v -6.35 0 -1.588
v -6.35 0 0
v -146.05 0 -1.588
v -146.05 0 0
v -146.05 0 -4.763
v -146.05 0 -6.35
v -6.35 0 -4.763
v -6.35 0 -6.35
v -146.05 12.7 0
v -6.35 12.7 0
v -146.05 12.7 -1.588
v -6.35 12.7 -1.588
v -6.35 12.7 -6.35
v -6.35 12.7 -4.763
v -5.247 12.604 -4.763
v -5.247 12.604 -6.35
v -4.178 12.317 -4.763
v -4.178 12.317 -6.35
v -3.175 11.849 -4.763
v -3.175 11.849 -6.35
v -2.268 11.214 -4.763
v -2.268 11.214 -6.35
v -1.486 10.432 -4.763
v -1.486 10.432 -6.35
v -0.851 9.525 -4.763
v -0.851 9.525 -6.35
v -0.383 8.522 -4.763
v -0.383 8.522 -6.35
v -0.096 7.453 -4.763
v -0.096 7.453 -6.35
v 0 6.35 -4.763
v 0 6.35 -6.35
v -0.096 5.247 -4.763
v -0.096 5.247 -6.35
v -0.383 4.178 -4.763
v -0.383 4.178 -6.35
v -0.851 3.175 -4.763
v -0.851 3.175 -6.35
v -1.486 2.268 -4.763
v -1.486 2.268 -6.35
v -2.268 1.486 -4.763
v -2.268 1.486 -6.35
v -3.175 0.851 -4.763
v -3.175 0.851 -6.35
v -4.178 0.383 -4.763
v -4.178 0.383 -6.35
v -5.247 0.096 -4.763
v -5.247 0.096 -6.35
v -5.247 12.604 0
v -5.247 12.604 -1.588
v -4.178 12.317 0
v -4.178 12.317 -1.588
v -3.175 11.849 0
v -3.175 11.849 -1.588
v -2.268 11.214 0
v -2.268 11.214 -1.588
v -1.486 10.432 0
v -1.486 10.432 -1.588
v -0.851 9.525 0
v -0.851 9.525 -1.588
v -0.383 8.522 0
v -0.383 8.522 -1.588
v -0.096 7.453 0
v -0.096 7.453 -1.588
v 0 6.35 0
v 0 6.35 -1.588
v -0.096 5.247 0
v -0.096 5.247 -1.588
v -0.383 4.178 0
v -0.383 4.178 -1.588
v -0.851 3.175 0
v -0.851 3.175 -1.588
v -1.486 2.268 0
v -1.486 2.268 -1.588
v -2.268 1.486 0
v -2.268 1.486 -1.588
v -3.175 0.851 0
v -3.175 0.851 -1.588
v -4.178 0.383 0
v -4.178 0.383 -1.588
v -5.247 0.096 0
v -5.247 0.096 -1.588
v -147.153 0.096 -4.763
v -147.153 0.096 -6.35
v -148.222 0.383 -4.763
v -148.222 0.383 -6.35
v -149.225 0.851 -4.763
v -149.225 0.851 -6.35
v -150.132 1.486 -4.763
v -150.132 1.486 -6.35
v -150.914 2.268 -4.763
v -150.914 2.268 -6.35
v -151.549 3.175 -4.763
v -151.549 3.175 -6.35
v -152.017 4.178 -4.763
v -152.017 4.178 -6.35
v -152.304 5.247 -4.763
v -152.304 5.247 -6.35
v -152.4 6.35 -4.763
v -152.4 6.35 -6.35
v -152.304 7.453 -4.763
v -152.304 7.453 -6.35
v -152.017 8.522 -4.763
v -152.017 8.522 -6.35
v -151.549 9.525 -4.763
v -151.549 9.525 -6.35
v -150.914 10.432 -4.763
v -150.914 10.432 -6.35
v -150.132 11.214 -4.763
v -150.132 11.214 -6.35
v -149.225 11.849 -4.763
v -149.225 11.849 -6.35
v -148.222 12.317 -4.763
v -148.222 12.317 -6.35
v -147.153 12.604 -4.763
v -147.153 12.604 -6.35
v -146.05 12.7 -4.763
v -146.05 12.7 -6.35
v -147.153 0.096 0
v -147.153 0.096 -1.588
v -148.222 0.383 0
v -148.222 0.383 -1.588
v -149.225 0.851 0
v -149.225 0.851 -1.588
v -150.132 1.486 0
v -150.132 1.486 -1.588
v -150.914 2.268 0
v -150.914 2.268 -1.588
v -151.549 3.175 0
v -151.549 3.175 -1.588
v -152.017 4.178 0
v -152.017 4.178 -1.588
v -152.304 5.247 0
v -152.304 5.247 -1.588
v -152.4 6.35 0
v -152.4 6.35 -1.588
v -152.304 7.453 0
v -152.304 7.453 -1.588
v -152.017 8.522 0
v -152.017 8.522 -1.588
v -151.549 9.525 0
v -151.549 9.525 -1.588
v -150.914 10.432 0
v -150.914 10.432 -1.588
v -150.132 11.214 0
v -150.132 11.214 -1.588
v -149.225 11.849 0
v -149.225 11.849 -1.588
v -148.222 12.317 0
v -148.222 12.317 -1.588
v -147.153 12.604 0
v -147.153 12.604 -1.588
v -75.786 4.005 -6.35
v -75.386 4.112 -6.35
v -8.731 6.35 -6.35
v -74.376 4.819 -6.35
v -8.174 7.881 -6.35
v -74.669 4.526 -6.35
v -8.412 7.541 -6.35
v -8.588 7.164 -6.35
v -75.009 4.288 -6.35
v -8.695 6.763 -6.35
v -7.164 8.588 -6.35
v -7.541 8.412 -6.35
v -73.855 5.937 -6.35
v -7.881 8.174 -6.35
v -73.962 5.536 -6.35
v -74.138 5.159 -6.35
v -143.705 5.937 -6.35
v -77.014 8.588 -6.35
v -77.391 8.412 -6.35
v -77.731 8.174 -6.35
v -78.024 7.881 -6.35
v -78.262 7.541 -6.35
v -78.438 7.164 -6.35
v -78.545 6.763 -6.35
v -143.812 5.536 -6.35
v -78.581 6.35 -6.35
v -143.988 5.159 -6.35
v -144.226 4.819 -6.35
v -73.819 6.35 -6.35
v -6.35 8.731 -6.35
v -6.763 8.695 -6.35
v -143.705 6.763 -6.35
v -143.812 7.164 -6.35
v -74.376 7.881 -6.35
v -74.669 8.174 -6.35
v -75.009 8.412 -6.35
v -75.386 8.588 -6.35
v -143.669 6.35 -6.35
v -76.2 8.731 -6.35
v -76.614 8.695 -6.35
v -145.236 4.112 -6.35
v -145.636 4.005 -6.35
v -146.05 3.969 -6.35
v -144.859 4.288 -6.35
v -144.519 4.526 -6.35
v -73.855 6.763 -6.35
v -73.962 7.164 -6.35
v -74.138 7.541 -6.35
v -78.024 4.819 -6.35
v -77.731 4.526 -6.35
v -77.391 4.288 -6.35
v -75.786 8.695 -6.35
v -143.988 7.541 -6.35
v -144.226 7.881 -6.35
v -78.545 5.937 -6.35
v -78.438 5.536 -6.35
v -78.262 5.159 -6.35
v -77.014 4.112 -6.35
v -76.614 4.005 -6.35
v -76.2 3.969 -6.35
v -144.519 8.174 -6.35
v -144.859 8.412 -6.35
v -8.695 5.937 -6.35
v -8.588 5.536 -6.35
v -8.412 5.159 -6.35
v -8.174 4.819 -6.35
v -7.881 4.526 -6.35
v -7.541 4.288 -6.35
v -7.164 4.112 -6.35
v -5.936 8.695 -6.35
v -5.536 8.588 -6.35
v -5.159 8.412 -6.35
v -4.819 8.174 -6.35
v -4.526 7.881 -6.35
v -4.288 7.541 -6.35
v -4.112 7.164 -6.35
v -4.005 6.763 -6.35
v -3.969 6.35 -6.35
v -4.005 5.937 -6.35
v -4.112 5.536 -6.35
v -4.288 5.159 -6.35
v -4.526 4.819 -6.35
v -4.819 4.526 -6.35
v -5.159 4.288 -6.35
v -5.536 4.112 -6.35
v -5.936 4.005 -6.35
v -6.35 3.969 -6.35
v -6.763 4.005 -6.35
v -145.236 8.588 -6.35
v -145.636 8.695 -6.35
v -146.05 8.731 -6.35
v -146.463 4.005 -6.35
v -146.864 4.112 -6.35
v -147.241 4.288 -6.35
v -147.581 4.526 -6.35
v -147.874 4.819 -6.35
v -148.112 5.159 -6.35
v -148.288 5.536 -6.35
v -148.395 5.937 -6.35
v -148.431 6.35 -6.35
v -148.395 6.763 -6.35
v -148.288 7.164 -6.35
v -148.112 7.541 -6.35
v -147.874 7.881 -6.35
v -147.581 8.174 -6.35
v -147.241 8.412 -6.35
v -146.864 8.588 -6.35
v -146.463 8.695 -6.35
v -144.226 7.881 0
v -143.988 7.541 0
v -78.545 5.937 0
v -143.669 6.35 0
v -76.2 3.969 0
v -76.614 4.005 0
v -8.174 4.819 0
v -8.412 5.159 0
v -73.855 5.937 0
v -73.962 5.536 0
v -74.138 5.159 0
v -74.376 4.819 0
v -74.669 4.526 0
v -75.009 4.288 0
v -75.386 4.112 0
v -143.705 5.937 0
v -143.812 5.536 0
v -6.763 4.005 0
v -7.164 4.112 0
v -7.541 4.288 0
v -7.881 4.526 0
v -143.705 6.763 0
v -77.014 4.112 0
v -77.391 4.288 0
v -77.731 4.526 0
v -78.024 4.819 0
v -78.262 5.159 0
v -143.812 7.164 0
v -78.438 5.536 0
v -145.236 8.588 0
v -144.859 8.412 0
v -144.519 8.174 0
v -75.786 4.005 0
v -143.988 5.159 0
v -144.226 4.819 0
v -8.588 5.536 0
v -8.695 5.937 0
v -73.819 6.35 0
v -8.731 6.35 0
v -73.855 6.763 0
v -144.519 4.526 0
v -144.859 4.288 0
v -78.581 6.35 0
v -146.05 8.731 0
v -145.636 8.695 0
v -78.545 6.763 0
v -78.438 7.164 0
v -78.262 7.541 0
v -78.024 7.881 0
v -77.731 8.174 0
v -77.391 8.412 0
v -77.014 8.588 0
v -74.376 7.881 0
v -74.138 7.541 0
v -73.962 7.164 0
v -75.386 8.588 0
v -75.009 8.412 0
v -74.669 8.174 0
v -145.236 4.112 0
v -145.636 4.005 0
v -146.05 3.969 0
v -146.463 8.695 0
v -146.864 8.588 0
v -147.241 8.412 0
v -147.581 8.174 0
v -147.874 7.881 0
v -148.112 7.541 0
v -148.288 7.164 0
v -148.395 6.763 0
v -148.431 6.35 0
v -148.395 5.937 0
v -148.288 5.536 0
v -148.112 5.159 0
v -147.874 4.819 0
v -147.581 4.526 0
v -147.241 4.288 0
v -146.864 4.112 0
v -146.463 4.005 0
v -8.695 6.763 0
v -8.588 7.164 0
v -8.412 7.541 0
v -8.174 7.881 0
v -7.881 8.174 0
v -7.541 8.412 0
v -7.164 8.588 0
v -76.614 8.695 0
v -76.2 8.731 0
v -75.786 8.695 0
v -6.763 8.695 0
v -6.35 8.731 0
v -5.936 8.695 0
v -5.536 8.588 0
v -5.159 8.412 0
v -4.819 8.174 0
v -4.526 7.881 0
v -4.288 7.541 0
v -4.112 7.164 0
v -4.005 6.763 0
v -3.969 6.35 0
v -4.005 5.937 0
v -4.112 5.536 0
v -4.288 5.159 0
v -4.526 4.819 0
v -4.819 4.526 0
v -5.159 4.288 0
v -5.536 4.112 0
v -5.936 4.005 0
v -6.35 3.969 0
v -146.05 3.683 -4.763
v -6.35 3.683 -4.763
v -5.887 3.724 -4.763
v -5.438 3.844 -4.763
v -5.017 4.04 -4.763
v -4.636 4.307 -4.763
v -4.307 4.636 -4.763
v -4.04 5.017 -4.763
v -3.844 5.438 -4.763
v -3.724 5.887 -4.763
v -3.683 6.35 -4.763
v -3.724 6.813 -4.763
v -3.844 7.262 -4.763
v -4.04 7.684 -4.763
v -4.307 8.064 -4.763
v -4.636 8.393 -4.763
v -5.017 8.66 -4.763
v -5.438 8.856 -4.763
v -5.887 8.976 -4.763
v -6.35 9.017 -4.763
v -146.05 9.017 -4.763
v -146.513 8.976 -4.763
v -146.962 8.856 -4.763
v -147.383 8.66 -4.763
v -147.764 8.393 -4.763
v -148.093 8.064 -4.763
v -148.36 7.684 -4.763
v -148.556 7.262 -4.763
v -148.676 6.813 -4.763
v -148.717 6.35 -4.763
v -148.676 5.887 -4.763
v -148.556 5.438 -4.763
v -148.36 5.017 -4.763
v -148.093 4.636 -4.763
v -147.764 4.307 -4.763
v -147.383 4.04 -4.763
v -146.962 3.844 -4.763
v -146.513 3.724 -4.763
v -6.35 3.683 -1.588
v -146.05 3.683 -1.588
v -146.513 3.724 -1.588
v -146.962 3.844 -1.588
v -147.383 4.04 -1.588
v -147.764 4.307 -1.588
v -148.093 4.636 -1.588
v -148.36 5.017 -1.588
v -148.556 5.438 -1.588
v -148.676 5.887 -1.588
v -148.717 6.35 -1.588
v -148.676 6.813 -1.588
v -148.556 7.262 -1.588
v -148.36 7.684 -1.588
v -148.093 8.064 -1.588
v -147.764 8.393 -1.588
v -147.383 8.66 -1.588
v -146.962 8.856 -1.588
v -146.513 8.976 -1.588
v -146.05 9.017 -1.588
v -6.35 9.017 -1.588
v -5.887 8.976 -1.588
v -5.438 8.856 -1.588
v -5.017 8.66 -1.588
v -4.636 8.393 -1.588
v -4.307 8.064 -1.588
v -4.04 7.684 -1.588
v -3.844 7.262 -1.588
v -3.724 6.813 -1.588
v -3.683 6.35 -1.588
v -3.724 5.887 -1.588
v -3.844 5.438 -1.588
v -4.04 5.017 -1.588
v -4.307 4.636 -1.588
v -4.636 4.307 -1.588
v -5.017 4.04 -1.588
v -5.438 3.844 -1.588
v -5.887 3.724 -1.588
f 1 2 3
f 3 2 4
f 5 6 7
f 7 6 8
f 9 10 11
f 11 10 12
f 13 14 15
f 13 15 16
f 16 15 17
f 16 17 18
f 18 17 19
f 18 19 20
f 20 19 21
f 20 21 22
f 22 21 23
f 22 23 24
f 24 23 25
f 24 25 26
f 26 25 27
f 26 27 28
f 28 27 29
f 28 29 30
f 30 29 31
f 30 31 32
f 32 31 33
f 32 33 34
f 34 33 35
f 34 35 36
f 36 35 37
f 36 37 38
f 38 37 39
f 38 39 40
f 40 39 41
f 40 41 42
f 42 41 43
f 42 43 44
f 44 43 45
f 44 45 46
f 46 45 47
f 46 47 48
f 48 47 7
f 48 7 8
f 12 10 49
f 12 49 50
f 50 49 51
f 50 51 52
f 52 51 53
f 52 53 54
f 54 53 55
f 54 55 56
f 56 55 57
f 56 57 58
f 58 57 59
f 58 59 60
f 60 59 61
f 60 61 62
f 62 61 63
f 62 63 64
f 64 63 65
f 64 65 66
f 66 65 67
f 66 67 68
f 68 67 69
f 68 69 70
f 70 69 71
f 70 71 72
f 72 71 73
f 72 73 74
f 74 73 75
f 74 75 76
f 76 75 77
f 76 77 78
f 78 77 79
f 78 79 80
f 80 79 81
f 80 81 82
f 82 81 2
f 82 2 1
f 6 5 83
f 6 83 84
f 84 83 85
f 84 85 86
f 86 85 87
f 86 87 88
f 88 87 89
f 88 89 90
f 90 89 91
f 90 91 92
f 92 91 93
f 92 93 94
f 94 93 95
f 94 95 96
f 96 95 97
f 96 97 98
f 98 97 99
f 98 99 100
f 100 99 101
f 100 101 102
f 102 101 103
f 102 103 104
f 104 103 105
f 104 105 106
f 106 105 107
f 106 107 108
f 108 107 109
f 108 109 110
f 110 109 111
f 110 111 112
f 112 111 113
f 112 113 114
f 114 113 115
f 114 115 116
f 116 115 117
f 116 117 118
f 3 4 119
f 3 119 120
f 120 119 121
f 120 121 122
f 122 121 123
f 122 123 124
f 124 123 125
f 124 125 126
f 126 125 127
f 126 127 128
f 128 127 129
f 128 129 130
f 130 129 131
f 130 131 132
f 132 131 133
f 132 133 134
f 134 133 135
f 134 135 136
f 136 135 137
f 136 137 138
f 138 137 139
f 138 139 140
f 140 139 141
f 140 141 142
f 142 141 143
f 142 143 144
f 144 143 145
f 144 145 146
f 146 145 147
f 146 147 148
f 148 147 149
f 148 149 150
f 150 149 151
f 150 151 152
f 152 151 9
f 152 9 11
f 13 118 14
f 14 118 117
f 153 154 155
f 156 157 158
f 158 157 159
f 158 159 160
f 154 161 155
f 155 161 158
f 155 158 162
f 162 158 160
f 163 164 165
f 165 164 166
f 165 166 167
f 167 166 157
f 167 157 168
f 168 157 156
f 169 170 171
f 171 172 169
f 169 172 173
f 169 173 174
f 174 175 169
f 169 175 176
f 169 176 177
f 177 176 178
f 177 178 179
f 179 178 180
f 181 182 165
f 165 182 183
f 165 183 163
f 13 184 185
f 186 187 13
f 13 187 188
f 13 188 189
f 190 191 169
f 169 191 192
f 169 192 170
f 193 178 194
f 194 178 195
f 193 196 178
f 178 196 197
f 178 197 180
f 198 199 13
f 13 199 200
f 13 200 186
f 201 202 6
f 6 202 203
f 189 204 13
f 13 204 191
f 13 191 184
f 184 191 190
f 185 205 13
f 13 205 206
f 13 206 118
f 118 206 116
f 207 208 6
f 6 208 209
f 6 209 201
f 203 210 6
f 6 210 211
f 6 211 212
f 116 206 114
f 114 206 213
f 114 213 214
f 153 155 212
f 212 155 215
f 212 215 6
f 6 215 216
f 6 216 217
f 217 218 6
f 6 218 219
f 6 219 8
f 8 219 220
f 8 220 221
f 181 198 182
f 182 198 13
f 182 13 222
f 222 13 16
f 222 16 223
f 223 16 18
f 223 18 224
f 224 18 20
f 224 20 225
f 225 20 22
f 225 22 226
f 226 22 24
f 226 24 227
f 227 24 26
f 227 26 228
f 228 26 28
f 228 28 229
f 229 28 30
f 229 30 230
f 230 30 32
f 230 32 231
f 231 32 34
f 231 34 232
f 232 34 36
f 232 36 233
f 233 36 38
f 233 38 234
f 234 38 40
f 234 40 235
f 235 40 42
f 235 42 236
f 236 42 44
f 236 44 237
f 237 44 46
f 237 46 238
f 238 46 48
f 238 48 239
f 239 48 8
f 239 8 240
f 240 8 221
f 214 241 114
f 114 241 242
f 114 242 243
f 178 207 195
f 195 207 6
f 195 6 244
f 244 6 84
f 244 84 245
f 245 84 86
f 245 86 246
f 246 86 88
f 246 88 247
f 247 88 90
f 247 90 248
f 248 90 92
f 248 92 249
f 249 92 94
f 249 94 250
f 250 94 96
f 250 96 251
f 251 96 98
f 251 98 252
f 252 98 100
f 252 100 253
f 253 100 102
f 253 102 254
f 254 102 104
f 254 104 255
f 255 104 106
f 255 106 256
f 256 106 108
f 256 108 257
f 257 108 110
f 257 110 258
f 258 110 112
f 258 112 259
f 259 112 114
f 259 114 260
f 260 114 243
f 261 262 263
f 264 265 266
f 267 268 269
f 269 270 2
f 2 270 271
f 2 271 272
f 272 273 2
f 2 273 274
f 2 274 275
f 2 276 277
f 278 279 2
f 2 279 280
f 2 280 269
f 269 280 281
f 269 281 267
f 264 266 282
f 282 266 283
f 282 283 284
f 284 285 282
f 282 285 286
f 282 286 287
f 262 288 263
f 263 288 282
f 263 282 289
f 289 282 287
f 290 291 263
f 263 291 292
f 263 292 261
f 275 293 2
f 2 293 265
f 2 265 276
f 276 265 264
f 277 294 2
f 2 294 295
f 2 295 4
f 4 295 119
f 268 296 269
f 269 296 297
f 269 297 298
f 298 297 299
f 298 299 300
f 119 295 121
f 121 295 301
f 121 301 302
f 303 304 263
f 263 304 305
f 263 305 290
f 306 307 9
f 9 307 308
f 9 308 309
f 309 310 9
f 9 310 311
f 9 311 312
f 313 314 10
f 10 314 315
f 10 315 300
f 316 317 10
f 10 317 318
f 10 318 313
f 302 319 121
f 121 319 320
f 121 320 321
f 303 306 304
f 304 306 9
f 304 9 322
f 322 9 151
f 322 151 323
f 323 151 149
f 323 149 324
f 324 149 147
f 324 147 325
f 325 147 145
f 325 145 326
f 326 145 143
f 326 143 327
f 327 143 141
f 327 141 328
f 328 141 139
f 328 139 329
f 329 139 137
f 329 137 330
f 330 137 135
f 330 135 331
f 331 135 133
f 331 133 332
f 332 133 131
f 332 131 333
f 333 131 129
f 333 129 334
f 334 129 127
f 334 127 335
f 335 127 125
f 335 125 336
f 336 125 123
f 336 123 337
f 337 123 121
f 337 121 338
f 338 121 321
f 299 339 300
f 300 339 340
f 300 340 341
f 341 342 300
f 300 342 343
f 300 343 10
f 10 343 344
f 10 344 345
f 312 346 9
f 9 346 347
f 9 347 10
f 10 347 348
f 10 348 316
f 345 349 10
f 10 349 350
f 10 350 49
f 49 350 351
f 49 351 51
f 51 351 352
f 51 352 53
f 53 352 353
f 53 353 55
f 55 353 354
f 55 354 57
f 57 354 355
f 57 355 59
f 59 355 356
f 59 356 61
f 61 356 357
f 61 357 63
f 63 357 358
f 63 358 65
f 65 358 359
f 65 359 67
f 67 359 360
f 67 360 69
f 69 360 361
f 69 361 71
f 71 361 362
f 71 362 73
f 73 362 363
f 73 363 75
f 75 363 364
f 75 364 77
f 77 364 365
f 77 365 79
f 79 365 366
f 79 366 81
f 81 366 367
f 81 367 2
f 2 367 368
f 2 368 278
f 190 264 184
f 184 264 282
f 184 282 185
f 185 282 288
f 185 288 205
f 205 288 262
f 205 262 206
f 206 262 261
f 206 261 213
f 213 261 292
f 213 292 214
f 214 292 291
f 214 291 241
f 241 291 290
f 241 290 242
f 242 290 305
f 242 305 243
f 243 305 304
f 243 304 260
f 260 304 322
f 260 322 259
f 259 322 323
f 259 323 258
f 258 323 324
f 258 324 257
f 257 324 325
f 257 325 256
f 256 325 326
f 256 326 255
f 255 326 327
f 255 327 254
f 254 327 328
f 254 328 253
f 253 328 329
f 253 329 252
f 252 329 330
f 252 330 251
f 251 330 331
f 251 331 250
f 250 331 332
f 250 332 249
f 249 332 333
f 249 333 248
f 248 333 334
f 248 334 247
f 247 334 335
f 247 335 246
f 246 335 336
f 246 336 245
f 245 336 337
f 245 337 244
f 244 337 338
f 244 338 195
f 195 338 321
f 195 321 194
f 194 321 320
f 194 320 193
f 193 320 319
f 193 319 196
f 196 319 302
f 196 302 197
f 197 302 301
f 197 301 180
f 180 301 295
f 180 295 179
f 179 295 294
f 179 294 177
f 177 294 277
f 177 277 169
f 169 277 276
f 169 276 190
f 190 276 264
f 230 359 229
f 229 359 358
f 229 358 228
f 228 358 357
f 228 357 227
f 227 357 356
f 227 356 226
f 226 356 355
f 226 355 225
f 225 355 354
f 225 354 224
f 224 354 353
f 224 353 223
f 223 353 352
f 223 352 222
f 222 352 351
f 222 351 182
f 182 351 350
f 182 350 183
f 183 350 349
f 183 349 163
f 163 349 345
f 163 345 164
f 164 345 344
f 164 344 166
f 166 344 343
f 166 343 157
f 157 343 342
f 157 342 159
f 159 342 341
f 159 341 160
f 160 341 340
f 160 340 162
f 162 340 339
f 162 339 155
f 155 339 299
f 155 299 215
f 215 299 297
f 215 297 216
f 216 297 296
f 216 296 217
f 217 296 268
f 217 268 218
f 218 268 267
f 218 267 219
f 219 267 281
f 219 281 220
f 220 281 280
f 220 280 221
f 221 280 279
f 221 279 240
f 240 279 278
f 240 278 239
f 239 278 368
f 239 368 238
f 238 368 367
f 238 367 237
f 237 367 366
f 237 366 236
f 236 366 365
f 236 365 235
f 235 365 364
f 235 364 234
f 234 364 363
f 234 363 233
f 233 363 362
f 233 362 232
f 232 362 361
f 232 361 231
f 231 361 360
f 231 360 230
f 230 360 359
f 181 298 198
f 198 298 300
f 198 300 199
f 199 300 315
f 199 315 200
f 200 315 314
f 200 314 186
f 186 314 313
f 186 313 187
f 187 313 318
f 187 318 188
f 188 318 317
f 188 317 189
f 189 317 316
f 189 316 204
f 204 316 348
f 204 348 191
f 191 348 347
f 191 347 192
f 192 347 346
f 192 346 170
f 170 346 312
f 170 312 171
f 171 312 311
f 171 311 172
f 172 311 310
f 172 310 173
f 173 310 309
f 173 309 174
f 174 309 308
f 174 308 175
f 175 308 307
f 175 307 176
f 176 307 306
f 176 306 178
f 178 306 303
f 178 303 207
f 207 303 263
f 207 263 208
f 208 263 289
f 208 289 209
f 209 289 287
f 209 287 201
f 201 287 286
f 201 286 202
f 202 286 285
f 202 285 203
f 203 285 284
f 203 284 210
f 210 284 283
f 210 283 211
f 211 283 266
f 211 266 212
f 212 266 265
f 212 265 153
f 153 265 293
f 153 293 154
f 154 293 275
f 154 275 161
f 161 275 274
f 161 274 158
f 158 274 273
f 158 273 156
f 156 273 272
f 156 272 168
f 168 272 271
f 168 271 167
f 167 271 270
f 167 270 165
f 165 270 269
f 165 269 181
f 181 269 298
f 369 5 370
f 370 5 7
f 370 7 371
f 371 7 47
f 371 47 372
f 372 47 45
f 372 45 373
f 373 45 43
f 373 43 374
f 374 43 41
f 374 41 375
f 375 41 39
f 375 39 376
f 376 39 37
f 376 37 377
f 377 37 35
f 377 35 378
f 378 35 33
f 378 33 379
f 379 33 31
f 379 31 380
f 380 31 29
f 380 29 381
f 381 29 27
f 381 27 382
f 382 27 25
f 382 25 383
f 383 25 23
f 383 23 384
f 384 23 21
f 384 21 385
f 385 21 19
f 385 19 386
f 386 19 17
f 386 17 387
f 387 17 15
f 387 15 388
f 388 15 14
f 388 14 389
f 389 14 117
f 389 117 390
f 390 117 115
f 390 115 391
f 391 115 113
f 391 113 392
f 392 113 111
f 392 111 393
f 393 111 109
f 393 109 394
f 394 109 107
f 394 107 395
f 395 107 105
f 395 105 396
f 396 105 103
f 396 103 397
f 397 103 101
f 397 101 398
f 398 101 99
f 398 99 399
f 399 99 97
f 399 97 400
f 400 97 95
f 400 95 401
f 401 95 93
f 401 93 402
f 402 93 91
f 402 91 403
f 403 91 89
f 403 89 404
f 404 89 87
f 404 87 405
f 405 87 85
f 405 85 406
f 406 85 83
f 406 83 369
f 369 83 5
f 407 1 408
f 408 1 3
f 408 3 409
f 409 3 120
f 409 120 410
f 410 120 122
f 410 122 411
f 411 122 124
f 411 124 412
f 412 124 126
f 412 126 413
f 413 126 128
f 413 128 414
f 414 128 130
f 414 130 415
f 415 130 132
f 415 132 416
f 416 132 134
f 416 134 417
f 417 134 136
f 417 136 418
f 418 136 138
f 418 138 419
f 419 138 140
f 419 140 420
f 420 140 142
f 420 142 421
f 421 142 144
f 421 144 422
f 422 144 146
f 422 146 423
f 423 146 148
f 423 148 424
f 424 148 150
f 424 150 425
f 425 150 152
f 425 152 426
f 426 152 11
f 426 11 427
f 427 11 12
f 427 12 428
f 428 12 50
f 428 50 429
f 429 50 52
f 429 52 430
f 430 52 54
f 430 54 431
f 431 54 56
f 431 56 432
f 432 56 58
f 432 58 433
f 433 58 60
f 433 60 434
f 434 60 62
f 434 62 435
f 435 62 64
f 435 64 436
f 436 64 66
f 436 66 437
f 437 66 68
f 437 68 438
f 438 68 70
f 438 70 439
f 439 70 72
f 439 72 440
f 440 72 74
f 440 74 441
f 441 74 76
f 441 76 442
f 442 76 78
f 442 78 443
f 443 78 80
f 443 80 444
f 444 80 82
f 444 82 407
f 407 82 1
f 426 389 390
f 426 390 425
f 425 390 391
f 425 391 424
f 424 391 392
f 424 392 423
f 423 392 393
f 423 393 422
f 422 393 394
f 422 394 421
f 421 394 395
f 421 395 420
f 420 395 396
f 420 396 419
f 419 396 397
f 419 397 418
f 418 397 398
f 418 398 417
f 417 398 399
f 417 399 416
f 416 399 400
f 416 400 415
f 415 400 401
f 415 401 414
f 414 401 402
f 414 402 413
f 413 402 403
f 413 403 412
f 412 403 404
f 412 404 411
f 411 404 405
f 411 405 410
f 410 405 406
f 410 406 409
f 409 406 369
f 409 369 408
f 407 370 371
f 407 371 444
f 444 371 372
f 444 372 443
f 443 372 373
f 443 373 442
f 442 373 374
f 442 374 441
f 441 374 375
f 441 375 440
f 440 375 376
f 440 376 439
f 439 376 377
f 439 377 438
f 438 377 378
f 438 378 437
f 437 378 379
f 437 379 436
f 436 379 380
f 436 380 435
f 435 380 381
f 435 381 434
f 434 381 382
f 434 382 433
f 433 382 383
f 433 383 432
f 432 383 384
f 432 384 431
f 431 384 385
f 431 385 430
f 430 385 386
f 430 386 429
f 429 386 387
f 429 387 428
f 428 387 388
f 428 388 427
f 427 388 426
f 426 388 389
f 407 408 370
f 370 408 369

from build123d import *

# Parameters (mm, degrees)
ESQUISSE1_W             = 152.4
ESQUISSE1_H             = 12.7
BOSS_EXTRU_1_DEPTH      = 6.35
ESQUISSE2_R             = 2.38125
ENL_V_MAT_EXTRU_1_DEPTH = 154.060029074
SKETCH1_W               = 14.17076538
SKETCH1_H               = 3.175
CUT_REVOLVE1_ANGLE      = 180
SKETCH2_W               = 3.175
SKETCH2_H               = 3.683
CUT_EXTRUDE1_DEPTH      = 154.060029074


with BuildPart() as part:
    # Esquisse1 → Boss.-Extru.1 (new body)
    with BuildSketch(Plane.XY):
        with Locations((-76.2, 6.35)):
            Rectangle(ESQUISSE1_W, ESQUISSE1_H)
    extrude(amount=-BOSS_EXTRU_1_DEPTH)

    # Esquisse2 → Enlèv. mat.-Extru.1 (cut, through all)
    with BuildSketch(Plane.XY):
        with Locations((-146.05, 6.35)):
            Circle(ESQUISSE2_R)
        with Locations((-76.2, 6.35)):
            Circle(ESQUISSE2_R)
        with Locations((-6.35, 6.35)):
            Circle(ESQUISSE2_R)
        with BuildLine():
            Line((0, 12.7), (-6.35, 12.7))
            ThreePointArc((-6.35, 12.7), (-1.859871939, 10.840128061), (0, 6.35))
            Line((0, 6.35), (0, 12.7))
        make_face()
        with BuildLine():
            Line((0, 0), (0, 6.35))
            ThreePointArc((0, 6.35), (-1.859871939, 1.859871939), (-6.35, 0))
            Line((-6.35, 0), (0, 0))
        make_face()
        with BuildLine():
            ThreePointArc((-152.4, 6.35), (-150.540128061, 10.840128061), (-146.05, 12.7))
            Line((-146.05, 12.7), (-152.4, 12.7))
            Line((-152.4, 12.7), (-152.4, 6.35))
        make_face()
        with BuildLine():
            ThreePointArc((-146.05, 0), (-150.540128061, 1.859871939), (-152.4, 6.35))
            Line((-152.4, 6.35), (-152.4, 0))
            Line((-152.4, 0), (-146.05, 0))
        make_face()
    extrude(amount=-ENL_V_MAT_EXTRU_1_DEPTH, mode=Mode.SUBTRACT)

    # Sketch1 → Cut-Revolve1 (revolve, symmetric, cut)
    with BuildSketch(Plane(origin=(0, 6.35, 0), x_dir=(1, 0, 0), z_dir=(0, 1, 0))) as cut_revolve1_sk:
        Polygon((-150.5585, 1.5875), (-152.4, 1.5875), (-152.4, 4.7625), (-150.5585, 4.7625), (-148.717, 4.7625), (-148.717, 1.5875), align=None)
        with Locations((-159.48538269, 3.175)):
            Rectangle(SKETCH1_W, SKETCH1_H)
    cut_revolve1 = revolve(axis=Axis((-146.05, 6.35, -6.35), (0, 0, 1)), revolution_arc=CUT_REVOLVE1_ANGLE / 2, mode=Mode.SUBTRACT)
    cut_revolve1 = cut_revolve1 + revolve(cut_revolve1_sk.sketch, axis=Axis((-146.05, 6.35, -6.35), (0, 0, -1)), revolution_arc=CUT_REVOLVE1_ANGLE / 2, mode=Mode.SUBTRACT)

    # Mirror1: Cut-Revolve1 across plane
    add(cut_revolve1.mirror(Plane(origin=(-76.2, 0, 0), x_dir=(0, 0, 1), z_dir=(1, 0, 0))), mode=Mode.SUBTRACT)

    # Sketch2 → Cut-Extrude1 (cut, through all)
    with BuildSketch(Plane(origin=(0, 0, 0), x_dir=(0, 0, -1), z_dir=(1, 0, 0))):
        with Locations((3.175, 10.8585)):
            Rectangle(SKETCH2_W, SKETCH2_H)
    cut_extrude1 = extrude(amount=-CUT_EXTRUDE1_DEPTH, mode=Mode.SUBTRACT)

    # Mirror2: Cut-Extrude1 across plane
    add(cut_extrude1.mirror(Plane.ZX.offset(6.35)), mode=Mode.SUBTRACT)


solid = part.part
